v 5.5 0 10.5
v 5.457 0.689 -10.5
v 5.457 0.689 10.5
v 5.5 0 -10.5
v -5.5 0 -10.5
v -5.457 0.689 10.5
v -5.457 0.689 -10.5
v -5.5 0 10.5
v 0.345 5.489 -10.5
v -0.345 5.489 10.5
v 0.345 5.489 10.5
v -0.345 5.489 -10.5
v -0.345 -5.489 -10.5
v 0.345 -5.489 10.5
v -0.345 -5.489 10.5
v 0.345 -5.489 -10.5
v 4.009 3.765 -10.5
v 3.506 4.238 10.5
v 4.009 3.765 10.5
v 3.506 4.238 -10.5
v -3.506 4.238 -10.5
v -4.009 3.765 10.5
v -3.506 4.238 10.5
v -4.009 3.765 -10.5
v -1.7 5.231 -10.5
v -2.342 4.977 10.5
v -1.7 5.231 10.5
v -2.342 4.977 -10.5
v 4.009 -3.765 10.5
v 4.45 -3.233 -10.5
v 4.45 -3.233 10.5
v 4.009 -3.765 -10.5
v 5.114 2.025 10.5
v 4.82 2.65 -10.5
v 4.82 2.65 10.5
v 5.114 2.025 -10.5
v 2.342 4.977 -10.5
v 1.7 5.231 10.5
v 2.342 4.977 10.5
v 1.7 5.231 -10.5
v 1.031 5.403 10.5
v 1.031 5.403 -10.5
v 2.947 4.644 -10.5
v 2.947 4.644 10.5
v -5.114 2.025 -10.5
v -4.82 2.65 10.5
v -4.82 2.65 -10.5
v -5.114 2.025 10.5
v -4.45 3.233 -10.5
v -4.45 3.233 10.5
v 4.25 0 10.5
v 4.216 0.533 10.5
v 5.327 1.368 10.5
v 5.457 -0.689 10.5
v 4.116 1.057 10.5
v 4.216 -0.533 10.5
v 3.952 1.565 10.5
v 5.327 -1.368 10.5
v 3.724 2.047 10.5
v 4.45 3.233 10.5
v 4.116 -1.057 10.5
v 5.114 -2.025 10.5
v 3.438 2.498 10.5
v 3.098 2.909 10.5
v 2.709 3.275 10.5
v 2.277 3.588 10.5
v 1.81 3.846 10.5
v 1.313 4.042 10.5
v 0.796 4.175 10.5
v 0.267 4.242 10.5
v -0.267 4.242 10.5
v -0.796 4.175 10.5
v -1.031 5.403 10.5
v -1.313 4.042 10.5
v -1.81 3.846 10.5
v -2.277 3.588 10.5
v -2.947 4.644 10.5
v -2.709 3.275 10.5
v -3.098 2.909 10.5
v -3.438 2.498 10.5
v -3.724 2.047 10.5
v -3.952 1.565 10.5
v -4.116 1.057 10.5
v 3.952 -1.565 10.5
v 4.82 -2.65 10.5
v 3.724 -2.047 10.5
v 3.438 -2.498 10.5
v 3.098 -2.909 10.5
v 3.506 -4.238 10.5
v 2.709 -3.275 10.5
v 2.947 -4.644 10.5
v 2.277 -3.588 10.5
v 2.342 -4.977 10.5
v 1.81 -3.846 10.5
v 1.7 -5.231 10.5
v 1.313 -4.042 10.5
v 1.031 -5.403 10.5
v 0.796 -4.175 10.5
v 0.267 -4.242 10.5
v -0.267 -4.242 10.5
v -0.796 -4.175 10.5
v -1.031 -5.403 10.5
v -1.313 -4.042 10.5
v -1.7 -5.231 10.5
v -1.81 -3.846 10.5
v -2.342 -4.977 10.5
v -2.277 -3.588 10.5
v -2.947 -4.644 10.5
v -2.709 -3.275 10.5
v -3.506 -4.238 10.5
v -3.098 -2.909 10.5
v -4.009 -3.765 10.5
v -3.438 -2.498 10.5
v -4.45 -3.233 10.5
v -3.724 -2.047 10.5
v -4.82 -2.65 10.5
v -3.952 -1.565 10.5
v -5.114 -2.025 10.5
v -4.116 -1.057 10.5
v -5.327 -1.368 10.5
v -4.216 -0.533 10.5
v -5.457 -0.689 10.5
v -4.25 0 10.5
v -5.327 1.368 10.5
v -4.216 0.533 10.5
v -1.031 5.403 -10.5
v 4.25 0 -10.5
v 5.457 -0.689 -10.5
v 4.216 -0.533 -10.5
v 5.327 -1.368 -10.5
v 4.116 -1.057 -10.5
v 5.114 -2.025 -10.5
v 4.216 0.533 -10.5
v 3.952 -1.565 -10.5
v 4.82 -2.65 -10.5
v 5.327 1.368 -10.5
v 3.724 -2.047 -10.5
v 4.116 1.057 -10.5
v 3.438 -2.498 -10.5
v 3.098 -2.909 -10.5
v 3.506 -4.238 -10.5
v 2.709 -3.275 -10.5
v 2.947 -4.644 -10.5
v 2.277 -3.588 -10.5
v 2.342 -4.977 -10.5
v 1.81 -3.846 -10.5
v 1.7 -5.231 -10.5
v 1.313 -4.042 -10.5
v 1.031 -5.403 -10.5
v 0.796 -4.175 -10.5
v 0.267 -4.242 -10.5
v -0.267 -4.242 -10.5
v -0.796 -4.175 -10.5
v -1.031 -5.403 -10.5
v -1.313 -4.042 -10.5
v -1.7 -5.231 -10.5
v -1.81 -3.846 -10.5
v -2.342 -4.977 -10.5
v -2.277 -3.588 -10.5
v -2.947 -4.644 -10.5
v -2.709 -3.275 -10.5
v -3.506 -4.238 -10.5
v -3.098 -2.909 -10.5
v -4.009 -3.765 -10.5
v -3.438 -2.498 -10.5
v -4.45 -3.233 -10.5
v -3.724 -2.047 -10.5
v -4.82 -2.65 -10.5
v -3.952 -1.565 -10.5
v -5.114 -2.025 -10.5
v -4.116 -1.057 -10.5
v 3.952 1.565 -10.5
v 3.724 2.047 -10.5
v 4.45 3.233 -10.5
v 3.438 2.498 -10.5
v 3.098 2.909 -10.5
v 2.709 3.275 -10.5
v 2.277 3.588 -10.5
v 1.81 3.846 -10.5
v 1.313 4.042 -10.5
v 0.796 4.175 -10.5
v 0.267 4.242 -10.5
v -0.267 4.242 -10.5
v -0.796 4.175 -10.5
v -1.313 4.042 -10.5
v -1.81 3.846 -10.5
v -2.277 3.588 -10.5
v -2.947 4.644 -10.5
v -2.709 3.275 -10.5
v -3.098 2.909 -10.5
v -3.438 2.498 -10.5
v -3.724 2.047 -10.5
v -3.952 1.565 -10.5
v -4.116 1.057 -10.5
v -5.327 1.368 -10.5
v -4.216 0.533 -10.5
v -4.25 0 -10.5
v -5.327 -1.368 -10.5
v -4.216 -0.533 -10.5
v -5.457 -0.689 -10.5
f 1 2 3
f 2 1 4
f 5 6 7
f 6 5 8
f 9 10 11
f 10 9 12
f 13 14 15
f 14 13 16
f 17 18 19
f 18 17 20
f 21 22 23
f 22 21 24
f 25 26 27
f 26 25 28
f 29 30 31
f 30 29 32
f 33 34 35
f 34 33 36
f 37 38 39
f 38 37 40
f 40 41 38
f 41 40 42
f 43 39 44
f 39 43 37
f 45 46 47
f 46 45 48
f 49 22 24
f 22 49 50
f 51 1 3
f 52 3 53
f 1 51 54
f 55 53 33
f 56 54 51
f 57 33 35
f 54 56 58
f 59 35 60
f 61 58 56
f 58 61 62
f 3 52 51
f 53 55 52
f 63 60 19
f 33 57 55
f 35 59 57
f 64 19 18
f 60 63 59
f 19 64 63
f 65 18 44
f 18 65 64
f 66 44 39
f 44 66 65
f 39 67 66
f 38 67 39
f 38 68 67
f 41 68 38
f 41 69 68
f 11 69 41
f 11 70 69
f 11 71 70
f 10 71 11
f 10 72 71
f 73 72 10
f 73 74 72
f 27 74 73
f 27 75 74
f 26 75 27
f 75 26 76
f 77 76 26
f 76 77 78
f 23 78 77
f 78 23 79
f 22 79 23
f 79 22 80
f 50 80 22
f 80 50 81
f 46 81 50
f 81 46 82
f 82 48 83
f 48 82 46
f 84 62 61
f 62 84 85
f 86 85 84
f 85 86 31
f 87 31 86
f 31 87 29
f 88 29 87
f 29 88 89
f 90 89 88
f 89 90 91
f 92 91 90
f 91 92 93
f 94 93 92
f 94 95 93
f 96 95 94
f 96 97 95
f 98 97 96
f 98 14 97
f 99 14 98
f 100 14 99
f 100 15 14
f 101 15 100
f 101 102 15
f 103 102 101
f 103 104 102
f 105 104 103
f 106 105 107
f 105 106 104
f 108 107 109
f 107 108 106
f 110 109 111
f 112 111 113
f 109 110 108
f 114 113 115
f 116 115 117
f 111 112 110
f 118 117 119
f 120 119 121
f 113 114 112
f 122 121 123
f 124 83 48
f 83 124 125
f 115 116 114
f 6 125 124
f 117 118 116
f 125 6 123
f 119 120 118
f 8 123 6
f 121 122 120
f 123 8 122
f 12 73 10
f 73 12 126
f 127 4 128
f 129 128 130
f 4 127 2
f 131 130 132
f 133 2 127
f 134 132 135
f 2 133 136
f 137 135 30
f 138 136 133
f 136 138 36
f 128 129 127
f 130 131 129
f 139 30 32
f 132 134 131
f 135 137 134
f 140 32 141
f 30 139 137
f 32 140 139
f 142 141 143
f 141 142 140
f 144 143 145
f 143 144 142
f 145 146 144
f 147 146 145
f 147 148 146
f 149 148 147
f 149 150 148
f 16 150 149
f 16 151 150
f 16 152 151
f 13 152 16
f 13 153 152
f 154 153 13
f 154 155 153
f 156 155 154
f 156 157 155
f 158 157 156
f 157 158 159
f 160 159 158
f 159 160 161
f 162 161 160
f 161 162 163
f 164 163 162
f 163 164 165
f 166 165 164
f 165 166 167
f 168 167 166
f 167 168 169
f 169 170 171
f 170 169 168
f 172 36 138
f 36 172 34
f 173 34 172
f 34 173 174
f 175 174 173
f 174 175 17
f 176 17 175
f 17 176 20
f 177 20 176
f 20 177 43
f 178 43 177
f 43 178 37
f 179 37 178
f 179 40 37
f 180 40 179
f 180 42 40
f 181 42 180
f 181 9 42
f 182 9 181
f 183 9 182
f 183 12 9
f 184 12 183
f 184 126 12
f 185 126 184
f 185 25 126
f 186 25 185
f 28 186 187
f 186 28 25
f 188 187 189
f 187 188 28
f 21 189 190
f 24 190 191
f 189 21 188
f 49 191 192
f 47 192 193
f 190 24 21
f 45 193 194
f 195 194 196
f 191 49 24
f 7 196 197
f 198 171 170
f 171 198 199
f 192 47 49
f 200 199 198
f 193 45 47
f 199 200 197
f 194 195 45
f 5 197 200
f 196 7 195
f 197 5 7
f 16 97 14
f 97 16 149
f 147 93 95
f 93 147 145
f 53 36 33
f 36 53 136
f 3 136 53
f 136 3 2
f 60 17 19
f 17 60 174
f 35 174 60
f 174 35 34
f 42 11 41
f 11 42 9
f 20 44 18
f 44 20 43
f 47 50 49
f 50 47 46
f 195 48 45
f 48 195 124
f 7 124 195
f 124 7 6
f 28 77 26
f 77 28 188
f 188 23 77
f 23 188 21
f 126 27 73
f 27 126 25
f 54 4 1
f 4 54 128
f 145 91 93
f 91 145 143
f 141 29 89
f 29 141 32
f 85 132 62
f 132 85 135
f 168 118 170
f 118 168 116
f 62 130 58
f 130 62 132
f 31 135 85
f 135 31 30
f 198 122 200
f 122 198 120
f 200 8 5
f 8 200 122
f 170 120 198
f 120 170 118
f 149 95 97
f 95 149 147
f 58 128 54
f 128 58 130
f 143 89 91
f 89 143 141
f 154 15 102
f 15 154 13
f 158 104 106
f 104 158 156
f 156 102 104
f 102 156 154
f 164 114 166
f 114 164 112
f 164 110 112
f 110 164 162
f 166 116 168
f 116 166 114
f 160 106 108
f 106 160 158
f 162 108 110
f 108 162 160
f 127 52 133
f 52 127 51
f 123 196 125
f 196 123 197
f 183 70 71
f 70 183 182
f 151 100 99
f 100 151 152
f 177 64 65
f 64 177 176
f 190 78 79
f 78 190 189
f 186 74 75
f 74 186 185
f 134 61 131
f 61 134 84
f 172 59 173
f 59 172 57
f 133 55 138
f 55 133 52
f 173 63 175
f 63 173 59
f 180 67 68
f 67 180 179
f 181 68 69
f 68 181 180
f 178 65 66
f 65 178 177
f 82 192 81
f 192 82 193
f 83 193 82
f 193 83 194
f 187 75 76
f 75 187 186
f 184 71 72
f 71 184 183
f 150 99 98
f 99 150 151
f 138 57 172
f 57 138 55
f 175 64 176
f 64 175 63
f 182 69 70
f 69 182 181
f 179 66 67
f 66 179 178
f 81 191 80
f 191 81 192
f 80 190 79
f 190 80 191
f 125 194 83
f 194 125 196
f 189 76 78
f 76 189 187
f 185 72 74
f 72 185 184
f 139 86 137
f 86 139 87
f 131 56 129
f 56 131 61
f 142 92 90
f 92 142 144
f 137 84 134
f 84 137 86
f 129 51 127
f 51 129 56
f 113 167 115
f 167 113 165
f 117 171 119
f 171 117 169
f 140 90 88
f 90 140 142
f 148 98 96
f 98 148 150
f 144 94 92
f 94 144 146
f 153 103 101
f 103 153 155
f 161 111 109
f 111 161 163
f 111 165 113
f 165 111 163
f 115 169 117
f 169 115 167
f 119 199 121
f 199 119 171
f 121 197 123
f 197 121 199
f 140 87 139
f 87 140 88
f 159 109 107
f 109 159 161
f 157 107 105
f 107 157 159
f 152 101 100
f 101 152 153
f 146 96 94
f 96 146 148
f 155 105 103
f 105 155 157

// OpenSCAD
$fn = 50;


difference() {
	union() {
		translate(v = [0, 0, -10.5000000000]) {
			cylinder(h = 21, r = 5.5000000000);
		}
	}
	union() {
		translate(v = [0, 0, -100.0000000000]) {
			cylinder(h = 200, r = 4.2500000000);
		}
	}
}
